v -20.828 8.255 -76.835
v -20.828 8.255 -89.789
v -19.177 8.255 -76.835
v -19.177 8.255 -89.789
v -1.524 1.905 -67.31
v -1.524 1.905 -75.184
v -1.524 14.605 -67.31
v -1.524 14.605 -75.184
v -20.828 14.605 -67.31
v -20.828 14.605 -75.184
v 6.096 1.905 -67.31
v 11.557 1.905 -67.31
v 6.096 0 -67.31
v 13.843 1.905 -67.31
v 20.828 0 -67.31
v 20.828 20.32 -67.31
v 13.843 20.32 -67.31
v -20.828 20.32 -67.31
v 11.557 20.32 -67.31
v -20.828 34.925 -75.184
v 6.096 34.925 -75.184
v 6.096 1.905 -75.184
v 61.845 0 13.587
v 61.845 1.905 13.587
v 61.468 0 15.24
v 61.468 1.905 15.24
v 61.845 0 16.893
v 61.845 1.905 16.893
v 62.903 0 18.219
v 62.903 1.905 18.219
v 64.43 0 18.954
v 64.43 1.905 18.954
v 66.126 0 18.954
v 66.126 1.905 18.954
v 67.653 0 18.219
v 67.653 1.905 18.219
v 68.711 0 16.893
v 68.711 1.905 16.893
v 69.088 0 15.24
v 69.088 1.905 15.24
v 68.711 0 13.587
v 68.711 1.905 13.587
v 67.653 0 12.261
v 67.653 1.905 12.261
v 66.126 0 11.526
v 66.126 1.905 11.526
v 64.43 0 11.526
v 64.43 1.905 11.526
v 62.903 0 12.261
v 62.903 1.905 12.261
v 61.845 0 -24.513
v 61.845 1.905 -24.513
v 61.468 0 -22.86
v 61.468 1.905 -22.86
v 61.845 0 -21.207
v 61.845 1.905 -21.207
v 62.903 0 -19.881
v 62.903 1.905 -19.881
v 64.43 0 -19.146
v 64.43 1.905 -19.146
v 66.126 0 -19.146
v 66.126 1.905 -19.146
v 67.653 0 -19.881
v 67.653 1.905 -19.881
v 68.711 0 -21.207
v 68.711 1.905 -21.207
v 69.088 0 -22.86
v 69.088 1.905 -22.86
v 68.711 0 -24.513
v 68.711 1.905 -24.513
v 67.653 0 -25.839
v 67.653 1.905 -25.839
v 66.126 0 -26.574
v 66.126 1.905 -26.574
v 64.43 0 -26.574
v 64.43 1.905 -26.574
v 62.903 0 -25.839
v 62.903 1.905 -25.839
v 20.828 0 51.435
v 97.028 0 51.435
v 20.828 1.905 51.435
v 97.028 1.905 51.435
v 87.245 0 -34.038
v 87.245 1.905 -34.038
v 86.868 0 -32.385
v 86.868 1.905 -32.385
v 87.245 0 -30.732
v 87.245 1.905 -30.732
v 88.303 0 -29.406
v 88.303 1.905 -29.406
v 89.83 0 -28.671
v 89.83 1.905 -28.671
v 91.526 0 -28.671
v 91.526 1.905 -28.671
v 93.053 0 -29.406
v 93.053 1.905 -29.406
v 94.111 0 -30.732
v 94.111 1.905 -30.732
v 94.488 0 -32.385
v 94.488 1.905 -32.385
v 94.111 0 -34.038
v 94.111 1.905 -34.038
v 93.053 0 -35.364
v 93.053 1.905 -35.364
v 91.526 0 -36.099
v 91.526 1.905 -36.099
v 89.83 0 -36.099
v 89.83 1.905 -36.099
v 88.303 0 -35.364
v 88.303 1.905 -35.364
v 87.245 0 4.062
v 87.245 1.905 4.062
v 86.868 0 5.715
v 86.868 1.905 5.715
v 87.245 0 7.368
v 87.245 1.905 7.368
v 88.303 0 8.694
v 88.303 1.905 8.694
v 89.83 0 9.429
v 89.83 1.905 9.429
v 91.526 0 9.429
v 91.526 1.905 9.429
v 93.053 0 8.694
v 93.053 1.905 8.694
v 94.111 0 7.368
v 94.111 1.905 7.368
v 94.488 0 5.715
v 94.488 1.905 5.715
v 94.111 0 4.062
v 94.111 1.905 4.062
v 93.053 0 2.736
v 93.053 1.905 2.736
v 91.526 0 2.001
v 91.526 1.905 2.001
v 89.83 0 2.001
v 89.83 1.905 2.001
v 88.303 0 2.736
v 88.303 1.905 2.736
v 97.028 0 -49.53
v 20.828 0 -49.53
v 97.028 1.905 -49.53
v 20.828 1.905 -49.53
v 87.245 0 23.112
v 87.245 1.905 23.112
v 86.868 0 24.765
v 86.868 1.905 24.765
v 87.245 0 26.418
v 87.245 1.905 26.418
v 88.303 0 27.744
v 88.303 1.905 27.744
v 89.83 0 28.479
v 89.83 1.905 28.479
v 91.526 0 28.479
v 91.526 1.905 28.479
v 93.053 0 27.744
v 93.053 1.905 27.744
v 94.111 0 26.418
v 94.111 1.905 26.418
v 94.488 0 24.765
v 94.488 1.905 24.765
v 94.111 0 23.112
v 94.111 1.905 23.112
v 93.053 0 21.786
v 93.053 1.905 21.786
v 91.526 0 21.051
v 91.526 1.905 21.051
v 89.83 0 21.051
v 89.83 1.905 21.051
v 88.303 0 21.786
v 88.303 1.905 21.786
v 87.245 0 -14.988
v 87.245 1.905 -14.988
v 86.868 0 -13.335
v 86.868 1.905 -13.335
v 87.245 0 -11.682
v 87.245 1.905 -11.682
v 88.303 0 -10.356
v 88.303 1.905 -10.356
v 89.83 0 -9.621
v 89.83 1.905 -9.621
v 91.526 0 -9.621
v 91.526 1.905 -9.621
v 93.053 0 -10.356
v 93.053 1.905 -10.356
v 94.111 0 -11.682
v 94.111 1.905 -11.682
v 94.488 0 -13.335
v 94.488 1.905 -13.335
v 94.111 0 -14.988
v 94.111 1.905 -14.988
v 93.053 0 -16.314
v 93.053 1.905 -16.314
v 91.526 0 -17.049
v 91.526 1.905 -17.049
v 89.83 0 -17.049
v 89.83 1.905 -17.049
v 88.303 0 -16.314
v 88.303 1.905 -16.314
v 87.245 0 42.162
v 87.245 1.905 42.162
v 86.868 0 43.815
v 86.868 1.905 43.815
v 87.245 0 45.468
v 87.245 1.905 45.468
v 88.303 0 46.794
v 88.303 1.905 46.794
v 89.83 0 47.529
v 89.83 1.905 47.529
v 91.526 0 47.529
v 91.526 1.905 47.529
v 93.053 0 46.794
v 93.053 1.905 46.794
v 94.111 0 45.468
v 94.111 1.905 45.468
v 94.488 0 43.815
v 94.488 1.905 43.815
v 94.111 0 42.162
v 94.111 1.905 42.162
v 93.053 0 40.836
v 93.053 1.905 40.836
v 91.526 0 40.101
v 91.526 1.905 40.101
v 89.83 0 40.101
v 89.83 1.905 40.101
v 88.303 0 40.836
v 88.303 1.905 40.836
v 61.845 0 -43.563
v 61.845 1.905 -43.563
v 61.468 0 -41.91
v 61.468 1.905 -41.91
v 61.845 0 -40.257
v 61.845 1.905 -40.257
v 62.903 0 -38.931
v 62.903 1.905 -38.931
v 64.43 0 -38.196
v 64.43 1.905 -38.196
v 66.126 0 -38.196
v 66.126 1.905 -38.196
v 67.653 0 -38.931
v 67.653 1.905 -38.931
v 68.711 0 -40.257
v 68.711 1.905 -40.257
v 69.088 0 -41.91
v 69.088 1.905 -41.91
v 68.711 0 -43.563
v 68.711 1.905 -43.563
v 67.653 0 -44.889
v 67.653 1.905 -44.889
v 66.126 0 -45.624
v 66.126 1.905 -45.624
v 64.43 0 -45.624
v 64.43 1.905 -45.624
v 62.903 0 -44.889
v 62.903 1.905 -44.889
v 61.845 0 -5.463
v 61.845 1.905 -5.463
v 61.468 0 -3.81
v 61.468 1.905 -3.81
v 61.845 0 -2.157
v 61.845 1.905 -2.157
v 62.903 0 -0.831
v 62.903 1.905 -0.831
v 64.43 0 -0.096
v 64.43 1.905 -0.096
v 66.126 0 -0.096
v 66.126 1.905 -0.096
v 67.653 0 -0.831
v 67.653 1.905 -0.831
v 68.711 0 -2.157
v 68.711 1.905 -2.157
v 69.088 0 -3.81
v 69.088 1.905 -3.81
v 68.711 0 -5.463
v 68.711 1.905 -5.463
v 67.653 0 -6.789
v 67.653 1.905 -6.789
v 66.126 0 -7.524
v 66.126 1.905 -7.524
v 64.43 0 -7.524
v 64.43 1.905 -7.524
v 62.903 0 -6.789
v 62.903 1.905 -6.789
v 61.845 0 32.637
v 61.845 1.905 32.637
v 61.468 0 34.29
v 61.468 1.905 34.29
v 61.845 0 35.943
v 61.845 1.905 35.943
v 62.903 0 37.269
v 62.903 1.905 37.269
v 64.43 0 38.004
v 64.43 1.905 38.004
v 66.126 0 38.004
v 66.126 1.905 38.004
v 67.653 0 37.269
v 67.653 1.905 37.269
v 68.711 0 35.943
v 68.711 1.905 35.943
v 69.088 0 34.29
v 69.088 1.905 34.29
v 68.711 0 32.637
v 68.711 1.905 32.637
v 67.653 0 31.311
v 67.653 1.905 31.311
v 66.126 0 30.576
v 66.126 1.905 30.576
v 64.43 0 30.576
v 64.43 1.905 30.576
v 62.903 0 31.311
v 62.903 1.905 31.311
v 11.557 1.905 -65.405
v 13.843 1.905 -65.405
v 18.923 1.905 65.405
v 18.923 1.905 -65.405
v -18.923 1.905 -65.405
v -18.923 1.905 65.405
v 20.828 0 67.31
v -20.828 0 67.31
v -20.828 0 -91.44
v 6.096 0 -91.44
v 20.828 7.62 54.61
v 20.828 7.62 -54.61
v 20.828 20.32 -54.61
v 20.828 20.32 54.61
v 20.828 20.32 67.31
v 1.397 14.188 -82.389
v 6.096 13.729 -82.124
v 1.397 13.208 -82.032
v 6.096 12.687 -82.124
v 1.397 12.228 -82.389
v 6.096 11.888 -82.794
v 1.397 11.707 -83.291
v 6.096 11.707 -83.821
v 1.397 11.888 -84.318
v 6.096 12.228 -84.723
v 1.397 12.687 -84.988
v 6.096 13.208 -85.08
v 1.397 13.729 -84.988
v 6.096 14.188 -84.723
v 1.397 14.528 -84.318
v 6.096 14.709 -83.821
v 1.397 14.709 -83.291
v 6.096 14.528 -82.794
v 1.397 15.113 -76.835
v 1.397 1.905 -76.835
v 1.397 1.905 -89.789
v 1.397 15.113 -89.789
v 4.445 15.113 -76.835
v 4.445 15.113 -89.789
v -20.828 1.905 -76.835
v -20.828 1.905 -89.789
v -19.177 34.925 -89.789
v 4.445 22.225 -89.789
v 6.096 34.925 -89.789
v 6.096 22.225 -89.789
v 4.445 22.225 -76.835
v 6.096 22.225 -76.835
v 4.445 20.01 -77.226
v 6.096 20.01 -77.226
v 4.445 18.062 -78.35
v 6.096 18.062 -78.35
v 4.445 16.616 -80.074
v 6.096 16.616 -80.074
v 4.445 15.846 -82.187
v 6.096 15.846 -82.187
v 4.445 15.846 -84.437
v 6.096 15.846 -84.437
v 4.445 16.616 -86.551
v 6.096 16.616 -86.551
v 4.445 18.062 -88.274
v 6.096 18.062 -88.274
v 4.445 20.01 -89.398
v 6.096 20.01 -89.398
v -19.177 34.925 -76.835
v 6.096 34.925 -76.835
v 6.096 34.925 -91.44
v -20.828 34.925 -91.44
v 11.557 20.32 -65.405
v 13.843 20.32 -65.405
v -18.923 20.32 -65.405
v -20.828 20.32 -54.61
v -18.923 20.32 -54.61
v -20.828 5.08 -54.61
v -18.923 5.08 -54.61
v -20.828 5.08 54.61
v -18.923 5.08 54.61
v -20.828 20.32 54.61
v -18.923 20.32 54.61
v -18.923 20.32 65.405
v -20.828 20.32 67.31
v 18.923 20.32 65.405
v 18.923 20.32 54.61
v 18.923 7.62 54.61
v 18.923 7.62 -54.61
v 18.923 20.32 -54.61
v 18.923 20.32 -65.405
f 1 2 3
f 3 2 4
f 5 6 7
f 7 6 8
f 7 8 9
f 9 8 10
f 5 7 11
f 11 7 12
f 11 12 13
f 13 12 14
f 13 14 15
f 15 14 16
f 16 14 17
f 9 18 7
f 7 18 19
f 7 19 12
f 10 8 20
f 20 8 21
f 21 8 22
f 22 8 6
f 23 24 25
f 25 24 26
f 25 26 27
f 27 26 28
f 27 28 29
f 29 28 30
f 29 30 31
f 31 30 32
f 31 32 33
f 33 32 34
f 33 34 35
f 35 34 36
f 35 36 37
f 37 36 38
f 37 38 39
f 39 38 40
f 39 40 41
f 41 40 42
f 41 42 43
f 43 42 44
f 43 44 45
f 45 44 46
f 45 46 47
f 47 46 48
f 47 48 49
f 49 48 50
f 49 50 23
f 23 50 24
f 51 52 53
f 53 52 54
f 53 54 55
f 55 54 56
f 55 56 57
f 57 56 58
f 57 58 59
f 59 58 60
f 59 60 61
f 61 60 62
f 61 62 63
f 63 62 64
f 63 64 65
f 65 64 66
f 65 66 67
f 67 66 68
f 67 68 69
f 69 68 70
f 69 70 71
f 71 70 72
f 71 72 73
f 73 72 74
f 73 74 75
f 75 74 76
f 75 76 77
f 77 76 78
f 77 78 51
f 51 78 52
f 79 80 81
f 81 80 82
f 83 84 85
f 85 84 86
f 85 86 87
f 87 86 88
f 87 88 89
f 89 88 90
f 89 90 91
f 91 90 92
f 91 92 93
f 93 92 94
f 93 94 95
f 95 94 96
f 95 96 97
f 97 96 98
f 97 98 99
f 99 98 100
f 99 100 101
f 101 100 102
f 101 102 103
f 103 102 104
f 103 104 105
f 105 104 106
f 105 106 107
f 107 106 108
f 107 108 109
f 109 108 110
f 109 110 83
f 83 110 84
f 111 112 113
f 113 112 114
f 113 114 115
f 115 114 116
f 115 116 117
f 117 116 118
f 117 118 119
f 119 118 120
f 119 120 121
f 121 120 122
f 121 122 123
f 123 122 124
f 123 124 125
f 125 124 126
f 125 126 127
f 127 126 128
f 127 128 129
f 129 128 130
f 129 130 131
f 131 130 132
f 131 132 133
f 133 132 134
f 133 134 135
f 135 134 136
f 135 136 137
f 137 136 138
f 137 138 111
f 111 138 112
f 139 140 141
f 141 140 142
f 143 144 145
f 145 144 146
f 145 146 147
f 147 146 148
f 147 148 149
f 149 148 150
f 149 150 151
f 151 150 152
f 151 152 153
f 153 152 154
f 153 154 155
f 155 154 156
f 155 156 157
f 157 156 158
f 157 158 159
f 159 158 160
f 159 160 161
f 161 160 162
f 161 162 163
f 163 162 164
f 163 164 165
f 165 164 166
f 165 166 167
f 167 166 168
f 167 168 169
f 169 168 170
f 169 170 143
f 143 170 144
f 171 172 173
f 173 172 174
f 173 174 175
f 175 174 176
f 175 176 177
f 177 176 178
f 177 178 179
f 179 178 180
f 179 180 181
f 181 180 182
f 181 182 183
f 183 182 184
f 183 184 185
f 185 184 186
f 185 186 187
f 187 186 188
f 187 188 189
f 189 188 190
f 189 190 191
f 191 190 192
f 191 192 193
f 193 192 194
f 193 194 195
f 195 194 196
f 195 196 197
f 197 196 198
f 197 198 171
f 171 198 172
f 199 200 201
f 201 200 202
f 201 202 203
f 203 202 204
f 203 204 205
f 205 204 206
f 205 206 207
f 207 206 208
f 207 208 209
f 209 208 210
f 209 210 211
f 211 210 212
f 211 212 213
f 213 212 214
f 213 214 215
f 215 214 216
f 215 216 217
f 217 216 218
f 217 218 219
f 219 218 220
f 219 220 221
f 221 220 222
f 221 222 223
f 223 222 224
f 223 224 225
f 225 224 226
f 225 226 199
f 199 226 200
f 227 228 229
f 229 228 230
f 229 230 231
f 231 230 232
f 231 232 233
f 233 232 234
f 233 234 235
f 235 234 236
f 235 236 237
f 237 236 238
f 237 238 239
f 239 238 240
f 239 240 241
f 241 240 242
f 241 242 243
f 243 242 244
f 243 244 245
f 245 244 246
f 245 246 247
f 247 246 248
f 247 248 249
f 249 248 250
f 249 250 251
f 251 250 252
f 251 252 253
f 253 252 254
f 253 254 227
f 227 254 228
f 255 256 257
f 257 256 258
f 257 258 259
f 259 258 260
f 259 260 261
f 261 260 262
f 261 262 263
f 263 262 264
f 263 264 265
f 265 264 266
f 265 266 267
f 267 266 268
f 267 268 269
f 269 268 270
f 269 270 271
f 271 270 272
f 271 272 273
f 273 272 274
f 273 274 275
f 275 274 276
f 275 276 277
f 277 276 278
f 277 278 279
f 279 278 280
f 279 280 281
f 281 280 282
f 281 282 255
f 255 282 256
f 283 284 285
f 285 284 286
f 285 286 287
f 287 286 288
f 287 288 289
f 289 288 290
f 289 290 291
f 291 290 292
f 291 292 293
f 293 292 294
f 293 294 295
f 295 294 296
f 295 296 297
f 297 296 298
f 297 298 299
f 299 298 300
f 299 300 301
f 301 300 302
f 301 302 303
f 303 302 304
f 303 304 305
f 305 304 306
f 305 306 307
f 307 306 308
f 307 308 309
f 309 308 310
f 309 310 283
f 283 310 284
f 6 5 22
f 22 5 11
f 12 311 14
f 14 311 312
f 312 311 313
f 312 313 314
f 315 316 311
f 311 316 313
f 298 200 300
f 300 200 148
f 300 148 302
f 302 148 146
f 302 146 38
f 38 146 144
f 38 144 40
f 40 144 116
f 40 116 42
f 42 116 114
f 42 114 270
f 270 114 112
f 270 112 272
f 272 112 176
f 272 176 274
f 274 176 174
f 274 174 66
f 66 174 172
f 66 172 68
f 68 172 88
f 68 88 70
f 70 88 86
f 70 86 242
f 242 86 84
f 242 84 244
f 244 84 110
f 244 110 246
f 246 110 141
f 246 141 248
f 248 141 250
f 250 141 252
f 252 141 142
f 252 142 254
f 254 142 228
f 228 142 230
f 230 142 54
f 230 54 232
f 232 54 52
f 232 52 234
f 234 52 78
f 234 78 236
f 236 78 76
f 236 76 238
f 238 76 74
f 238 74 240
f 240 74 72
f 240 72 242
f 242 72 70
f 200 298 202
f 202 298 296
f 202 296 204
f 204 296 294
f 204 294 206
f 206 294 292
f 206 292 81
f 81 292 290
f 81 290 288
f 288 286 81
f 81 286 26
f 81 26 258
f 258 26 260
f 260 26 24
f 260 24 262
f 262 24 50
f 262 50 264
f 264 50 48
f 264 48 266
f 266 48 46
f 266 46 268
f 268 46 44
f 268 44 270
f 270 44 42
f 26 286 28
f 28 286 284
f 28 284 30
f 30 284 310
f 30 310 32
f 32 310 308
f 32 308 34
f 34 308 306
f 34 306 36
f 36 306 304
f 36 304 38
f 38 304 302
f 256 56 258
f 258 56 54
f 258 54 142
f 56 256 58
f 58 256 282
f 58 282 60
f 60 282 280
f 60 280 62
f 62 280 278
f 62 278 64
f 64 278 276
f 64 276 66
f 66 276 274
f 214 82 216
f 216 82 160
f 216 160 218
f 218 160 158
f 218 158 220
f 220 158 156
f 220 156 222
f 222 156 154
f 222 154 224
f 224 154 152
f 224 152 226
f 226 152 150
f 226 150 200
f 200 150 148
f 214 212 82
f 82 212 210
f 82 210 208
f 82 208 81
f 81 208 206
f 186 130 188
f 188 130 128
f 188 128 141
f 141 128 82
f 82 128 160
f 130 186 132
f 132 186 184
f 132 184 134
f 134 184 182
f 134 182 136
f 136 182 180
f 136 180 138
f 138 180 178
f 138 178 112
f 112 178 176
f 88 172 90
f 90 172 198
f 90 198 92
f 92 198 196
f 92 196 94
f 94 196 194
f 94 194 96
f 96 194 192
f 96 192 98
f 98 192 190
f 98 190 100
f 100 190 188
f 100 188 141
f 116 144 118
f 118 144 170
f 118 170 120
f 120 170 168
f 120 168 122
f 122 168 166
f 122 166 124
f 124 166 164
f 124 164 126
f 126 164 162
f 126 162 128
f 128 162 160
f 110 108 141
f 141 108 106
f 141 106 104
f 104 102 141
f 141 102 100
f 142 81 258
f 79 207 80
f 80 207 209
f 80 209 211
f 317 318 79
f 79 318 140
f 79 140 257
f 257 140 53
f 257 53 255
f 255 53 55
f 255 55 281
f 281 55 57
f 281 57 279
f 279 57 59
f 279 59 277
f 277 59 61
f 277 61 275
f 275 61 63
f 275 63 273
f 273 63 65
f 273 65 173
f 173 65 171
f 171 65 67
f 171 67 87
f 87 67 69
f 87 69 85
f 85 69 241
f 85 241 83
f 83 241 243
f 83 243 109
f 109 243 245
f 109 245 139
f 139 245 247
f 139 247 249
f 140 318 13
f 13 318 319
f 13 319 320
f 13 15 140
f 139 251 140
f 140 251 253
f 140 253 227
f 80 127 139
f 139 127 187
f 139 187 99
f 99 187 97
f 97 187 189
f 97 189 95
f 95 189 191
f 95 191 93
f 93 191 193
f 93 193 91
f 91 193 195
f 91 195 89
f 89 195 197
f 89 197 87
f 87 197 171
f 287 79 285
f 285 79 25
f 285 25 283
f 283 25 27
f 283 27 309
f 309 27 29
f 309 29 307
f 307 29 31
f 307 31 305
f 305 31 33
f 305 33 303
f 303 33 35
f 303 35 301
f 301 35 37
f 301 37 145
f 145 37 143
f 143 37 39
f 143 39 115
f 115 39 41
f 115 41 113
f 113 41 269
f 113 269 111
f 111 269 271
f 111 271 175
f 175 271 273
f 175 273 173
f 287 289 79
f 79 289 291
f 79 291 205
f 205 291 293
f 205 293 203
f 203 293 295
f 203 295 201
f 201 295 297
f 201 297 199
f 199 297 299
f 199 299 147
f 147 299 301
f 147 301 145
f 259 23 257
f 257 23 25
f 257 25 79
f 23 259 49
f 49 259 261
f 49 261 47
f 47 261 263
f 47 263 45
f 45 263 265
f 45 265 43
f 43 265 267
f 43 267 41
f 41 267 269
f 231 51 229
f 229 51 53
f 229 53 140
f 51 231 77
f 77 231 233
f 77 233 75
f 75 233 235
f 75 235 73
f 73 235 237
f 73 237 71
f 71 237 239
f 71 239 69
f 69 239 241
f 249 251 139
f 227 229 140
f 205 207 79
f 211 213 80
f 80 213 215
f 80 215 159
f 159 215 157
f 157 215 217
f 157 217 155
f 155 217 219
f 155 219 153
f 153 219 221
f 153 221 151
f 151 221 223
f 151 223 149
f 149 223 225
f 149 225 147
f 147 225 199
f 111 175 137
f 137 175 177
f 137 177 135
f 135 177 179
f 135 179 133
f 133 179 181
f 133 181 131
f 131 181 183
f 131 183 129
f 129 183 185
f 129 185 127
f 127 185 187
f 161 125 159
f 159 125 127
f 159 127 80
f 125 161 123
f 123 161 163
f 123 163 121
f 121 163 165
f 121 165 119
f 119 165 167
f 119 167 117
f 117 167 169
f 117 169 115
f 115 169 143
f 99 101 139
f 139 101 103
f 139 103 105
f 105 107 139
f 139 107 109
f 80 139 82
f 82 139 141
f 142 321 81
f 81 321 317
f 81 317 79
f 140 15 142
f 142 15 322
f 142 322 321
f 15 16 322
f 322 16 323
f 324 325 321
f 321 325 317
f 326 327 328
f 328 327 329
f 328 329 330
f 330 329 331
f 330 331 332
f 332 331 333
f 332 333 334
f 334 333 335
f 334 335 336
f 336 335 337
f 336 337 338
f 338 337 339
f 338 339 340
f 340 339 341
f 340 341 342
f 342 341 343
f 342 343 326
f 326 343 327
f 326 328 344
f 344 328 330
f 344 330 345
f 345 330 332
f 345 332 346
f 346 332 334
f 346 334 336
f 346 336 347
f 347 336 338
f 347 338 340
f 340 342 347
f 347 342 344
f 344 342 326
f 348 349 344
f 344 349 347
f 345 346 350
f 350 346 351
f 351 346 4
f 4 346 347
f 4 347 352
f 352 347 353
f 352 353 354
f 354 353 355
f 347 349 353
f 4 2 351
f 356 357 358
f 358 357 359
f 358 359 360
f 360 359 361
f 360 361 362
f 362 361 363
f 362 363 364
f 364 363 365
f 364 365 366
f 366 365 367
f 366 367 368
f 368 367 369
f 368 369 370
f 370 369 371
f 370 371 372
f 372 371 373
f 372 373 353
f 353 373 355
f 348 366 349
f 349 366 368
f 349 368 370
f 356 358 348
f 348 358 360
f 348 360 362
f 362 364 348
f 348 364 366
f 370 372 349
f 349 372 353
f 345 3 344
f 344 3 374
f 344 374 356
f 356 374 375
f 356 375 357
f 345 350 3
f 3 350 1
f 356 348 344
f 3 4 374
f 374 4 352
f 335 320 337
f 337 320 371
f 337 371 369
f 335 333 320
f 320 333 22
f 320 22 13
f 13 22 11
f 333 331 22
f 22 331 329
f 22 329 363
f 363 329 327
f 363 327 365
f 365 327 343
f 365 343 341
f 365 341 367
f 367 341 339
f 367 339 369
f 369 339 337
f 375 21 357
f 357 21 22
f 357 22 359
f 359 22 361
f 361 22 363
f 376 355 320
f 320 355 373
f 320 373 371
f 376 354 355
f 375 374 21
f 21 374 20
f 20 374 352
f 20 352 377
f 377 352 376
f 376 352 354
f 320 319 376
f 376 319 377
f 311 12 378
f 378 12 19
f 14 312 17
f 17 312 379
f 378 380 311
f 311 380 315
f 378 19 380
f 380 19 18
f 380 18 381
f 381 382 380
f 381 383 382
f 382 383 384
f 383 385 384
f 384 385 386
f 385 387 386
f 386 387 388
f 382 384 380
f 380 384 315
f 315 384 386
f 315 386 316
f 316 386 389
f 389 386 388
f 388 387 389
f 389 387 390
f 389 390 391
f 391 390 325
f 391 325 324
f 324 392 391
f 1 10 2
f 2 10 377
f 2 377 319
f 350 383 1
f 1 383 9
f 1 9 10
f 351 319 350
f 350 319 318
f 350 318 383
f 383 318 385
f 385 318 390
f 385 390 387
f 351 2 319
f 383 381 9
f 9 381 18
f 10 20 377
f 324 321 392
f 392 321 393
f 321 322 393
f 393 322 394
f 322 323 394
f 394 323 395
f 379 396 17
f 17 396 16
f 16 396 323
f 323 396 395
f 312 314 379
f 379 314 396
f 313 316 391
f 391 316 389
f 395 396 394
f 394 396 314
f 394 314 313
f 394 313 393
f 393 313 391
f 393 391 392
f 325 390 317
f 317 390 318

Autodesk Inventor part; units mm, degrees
ref_plane "YZ Plane" through (0, 0, 0) normal (1, 0, 0) x (0, 1, 0)
ref_plane "XZ Plane" through (0, 0, 0) normal (0, 1, 0) x (-1, 0, 0)
ref_plane "XY Plane" through (0, 0, 0) normal (0, 0, 1) x (1, 0, 0)
sketch "Sketch1" plane through (0, 0, 0) normal (0, 1, 0) x (-1, 0, 0)
  line L0 (18.923, 65.405) -> (-18.923, 65.405)
  line L1 (-18.923, 65.405) -> (-18.923, -65.405)
  line L2 (-18.923, -65.405) -> (18.923, -65.405)
  line L3 (18.923, -65.405) -> (18.923, 65.405)
  line L4 (18.923, 65.405) -> (-18.923, -65.405) construction
  line L5 (-18.923, 65.405) -> (18.923, -65.405) construction
  line L6 (20.828, 67.31) -> (-20.828, 67.31)
  line L7 (-20.828, 67.31) -> (-20.828, -67.31)
  line L8 (-20.828, -67.31) -> (20.828, -67.31)
  line L9 (20.828, -67.31) -> (20.828, 67.31)
  point P0 (0, 0)
  dimension "d0" = 37.846
  dimension "d1" = 130.81
  dimension "d2" = 1.905
extrude "Extrusion1" add sketch "Sketch1" along normal blind 20.32
extrude "Extrusion2" add sketch "Sketch1" along normal blind 1.905 contours L3 L2 L1 L0
sketch "Sketch2" plane through (20.828, 0, 67.31) normal (1, 0, 0) x (0, 0, -1)
  line L0 (12.7, 20.32) -> (121.92, 20.32)
  line L1 (121.92, 20.32) -> (121.92, 7.62)
  line L2 (121.92, 7.62) -> (12.7, 7.62)
  line L3 (12.7, 7.62) -> (12.7, 20.32)
  line L4 (0, 0) -> (0, 20.32) projected
  line L5 (134.62, 0) -> (134.62, 20.32) projected
  line L6 (0, 20.32) -> (134.62, 20.32) projected
  line L7 (0, 0) -> (134.62, 0) projected
  point P0 (67.31, 0)
  dimension "d7" = 12.7
  dimension "d8" = 12.7
  dimension "d9" = 7.62
extrude "Extrusion3" cut sketch "Sketch2" against normal blind 1.905 contours L0 L1 L2 L3
sketch "Sketch3" plane through (-20.828, 0, -67.31) normal (-1, 0, 0) x (0, 0, 1)
  line L0 (12.7, 20.32) -> (121.92, 20.32)
  line L1 (121.92, 20.32) -> (121.92, 5.08)
  line L2 (121.92, 5.08) -> (12.7, 5.08)
  line L3 (12.7, 5.08) -> (12.7, 20.32)
  line L4 (0, 20.32) -> (134.62, 20.32) projected
  line L5 (0, 0) -> (0, 20.32) projected
  line L6 (134.62, 0) -> (134.62, 20.32) projected
  line L7 (0, 0) -> (134.62, 0) projected
  point P0 (67.31, 0)
  dimension "d12" = 12.7
  dimension "d13" = 12.7
  dimension "d14" = 5.08
extrude "Extrusion4" cut sketch "Sketch3" against normal blind 1.905 contours L0 L1 L2 L3
sketch "Sketch4" plane through (0, 20.32, 0) normal (0, 1, 0) x (1, 0, 0)
  line L0 (20.828, 67.31) -> (-20.828, 67.31) projected
  line L1 (-18.923, 65.405) -> (18.923, 65.405) projected
  line L2 (13.843, 67.31) -> (11.557, 67.31)
  line L3 (11.557, 67.31) -> (11.557, 65.405)
  line L4 (11.557, 65.405) -> (13.843, 65.405)
  line L5 (13.843, 65.405) -> (13.843, 67.31)
  line L6 (18.923, 65.405) -> (18.923, 54.61) projected
  line L7 (-18.923, 54.61) -> (-18.923, 65.405) projected
  point P0 (0, 0)
  dimension "d17" = 5.08
  dimension "d18" = 30.48
extrude "Extrusion5" cut sketch "Sketch4" against normal up to surface (18.415 mm away)
sketch "Sketch5" plane through (20.828, 0, -67.31) normal (0, 0, -1) x (-1, 0, 0)
  line L0 (0, 0) -> (41.656, 0) projected
  line L1 (0, 0) -> (41.656, 0)
  line L2 (41.656, 0) -> (41.656, 1.905)
  line L3 (41.656, 1.905) -> (0, 1.905)
  line L4 (0, 1.905) -> (0, 0)
  line L5 (9.271, 1.905) -> (6.985, 1.905) projected
  line L6 (41.656, 0) -> (41.656, 20.32) projected
  point P0 (20.828, 0)
extrude "Extrusion6" add sketch "Sketch5" along normal blind 24.13
sketch "Sketch6" plane through (0, 1.905, 0) normal (0, 1, 0) x (1, 0, 0)
  line L0 (-19.177, 76.835) -> (4.445, 76.835)
  line L1 (4.445, 76.835) -> (4.445, 89.789)
  line L2 (4.445, 89.789) -> (-19.177, 89.789)
  line L3 (-19.177, 89.789) -> (-19.177, 76.835)
  line L4 (18.923, 65.405) -> (18.923, 54.61) projected
  line L5 (11.557, 67.31) -> (-20.828, 67.31) projected
  line L6 (-20.828, 75.184) -> (6.096, 75.184)
  line L7 (6.096, 75.184) -> (6.096, 91.44)
  line L8 (6.096, 91.44) -> (-20.828, 91.44)
  line L9 (-20.828, 91.44) -> (-20.828, 75.184)
  line L10 (-20.828, 91.44) -> (20.828, 91.44) projected
  line L11 (-20.828, 67.31) -> (-20.828, 91.44) projected
  line L12 (-18.923, 65.405) -> (11.557, 65.405) projected
  point P0 (0, 0)
  dimension "d24" = 12.954
  dimension "d26" = 23.622
  dimension "d32" = 11.43
extrude "Extrusion7" add sketch "Sketch6" along normal blind 33.02
sketch "Sketch8" plane through (4.445, 1.905, -89.789) normal (-1, 0, 0) x (0, 0, 1)
  circle A0 centre (6.477, 20.32) radius 6.477
  line L0 (0, 0) -> (0, 33.02) projected
  line L1 (12.954, 0) -> (12.954, 33.02) projected
  line L2 (0, 0) -> (12.954, 0) projected
  line L3 (12.954, 20.32) -> (12.954, 33.02)
  line L4 (0, 33.02) -> (0, 20.32)
  line L5 (12.954, 33.02) -> (0, 33.02)
  line L6 (12.954, 20.32) -> (12.954, 33.02)
  line L7 (0, 33.02) -> (0, 20.32)
  point P0 (89.789, -1.905)
  dimension "d29" = 20.32
extrude "Extrusion8" cut sketch "Sketch8" against normal blind 33.02 contours A0 | A0 L0 L5 L1
sketch "Sketch10" plane through (4.445, 1.905, -89.789) normal (-1, 0, 0) x (0, 0, 1)
  line L0 (-1.651, 0) -> (14.605, 0) projected
  line L1 (-1.651, 0) -> (-1.651, 33.02) projected
  line L2 (14.605, 0) -> (-1.651, 0)
  line L3 (-1.651, 0) -> (-1.651, 13.208)
  line L4 (-1.651, 13.208) -> (14.605, 13.208)
  line L5 (14.605, 13.208) -> (14.605, 0)
  arc A0 (0, 20.32) -> (12.954, 20.32) centre (6.477, 20.32) ccw projected
  point P0 (89.789, -1.905)
  point P1 (6.477, 13.843)
  point P2 (6.477, 13.208)
  dimension "d37" = 0.635
extrude "Extrusion10" add sketch "Sketch10" along normal blind 3.048
sketch "Sketch9" plane through (6.096, 1.905, -75.184) normal (1, 0, 0) x (0, 0, -1)
  arc A0 (1.651, 20.32) -> (14.605, 20.32) centre (8.128, 20.32) ccw projected
  circle A1 centre (8.372, 11.303) radius 1.524
  point P0 (-75.184, -1.905)
  point P1 (8.128, 13.843)
  dimension "d33" = 2.54
  dimension "d34" = 3.048
extrude "Extrusion9" cut sketch "Sketch9" against normal up to surface (25.273 mm away)
sketch "Sketch11" plane through (20.828, 0, 67.31) normal (1, 0, 0) x (0, 0, -1)
  line L0 (134.62, 1.905) -> (158.75, 1.905) projected
  line L1 (0, 0) -> (158.75, 0)
  line L2 (158.75, 0) -> (158.75, 1.905)
  line L3 (158.75, 1.905) -> (0, 1.905)
  line L4 (0, 1.905) -> (0, 0)
  point P0 (67.31, 0)
extrude "Extrusion11" add sketch "Sketch11" along normal blind 76.2
sketch "Sketch12" plane through (0, 1.905, 0) normal (0, 1, 0) x (1, 0, 0)
  circle A0 centre (90.678, -43.815) radius 3.81
  line L0 (20.828, 54.61) -> (20.828, -54.61) projected
  line L1 (18.923, -65.405) -> (-18.923, -65.405) projected
  line L2 (20.828, -51.435) -> (97.028, -51.435)
  line L3 (97.028, 91.44) -> (97.028, -67.31) projected
  line L4 (97.028, -67.31) -> (20.828, -67.31)
  line L5 (20.828, -67.31) -> (20.828, -51.435)
  line L6 (97.028, -36.195) -> (20.828, -36.195)
  line L7 (-20.828, 91.44) -> (97.028, 91.44) projected
  line L8 (20.828, 91.44) -> (97.028, 91.44)
  line L9 (97.028, 91.44) -> (97.028, -36.195)
  line L10 (20.828, -36.195) -> (97.028, -36.195)
  line L11 (97.028, -36.195) -> (97.028, 91.44)
  line L12 (97.028, 91.44) -> (20.828, 91.44)
  line L13 (20.828, 91.44) -> (20.828, -36.195)
  line L14 (6.096, 91.44) -> (97.028, 91.44)
  line L15 (97.028, 91.44) -> (97.028, 67.31)
  line L16 (6.096, 67.31) -> (6.096, 91.44)
  line L17 (6.096, 89.789) -> (6.096, 91.44) projected
  line L18 (20.828, 67.31) -> (13.843, 67.31) projected
  circle A1 centre (65.278, -34.29) radius 3.81
  circle A2 centre (90.678, -24.765) radius 3.81
  circle A3 centre (90.678, -5.715) radius 3.81
  circle A4 centre (90.678, 13.335) radius 3.81
  circle A5 centre (90.678, 32.385) radius 3.81
  circle A6 centre (65.278, -15.24) radius 3.81
  circle A7 centre (65.278, 3.81) radius 3.81
  circle A8 centre (65.278, 22.86) radius 3.81
  circle A9 centre (65.278, 41.91) radius 3.81
  line L19 (20.828, 91.44) -> (97.028, 91.44)
  line L20 (97.028, 91.44) -> (97.028, 49.53)
  line L21 (97.028, 49.53) -> (20.828, 49.53)
  line L22 (20.828, 49.53) -> (20.828, 91.44)
  line L23 (6.096, 67.31) -> (20.828, 67.31)
  line L24 (20.828, 67.31) -> (20.828, 91.44)
  line L25 (20.828, 91.44) -> (6.096, 91.44)
  line L26 (6.096, 91.44) -> (6.096, 67.31)
  point P0 (0, 0)
  point P1 (97.028, -36.195)
  point P2 (20.828, -54.61)
  point P3 (6.096, 90.5705)
  point P4 (5.715, 89.789)
  point P5 (20.828, 49.53)
  dimension "d42" = 7.62
  dimension "d44" = 21.59
  dimension "d45" = 7.62
  dimension "d46" = 7.62
  dimension "d59" = 7.62
  dimension "d76" = 69.85
  dimension "d79" = 19.05
  dimension "d84" = 9.525
  dimension "d87" = 19.05
  dimension "d92" = 25.4
  dimension "d93" = 7.62
extrude "Extrusion12" cut sketch "Sketch12" against normal blind 57.15 contours A0 | L13 L7 L3 L21 L0 | L18 L23 L16 L7 L13 | L2 L3 L4 L5 L0 | A1 L6 | L6 A1 | A2 | A3 | A4 | A5 | A6 | A7 | A8 | A9
sketch "Sketch13" plane through (0, 1.905, 0) normal (0, 1, 0) x (1, 0, 0)
  line L0 (11.557, 67.31) -> (-20.828, 67.31) projected
  line L1 (-20.828, 75.184) -> (6.096, 75.184) projected
  line L2 (-13.208, 67.31) -> (-1.524, 67.31)
  line L3 (-1.524, 67.31) -> (-1.524, 75.184)
  line L4 (-1.524, 75.184) -> (-13.208, 75.184)
  line L5 (-13.208, 75.184) -> (-13.208, 67.31)
  line L6 (-20.828, 67.31) -> (-20.828, 75.184) projected
  line L7 (6.096, 91.44) -> (6.096, 75.184) projected
  point P0 (0, 0)
  point P1 (-20.828, 71.247)
  point P2 (-13.208, 71.247)
  point P3 (6.096, 67.31)
  point P4 (-1.524, 67.31)
  point P5 (-13.208, 75.184)
  point P6 (-1.524, 67.31)
  dimension "d49" = 7.62
  dimension "d50" = 7.62
extrude "Extrusion13" add sketch "Sketch13" along normal blind 12.7
sketch "Sketch15" plane through (-19.177, 1.905, -76.835) normal (1, 0, 0) x (0, 0, -1)
  line L0 (0, 0) -> (12.954, 0)
  line L1 (12.954, 0) -> (12.954, 6.35)
  line L2 (12.954, 6.35) -> (0, 6.35)
  line L3 (0, 6.35) -> (0, 0)
  line L4 (-144.145, -1.905) -> (14.605, -1.905) projected
  line L5 (14.605, -1.905) -> (14.605, 33.02) projected
  point P0 (-76.835, -1.905)
  dimension "d94" = 12.954
  dimension "d95" = 6.35
  dimension "d96" = 1.905
  dimension "d97" = 1.651
extrude "Extrusion14" cut sketch "Sketch15" against normal blind 57.15
properties part number "HarmonicaFrame2"
